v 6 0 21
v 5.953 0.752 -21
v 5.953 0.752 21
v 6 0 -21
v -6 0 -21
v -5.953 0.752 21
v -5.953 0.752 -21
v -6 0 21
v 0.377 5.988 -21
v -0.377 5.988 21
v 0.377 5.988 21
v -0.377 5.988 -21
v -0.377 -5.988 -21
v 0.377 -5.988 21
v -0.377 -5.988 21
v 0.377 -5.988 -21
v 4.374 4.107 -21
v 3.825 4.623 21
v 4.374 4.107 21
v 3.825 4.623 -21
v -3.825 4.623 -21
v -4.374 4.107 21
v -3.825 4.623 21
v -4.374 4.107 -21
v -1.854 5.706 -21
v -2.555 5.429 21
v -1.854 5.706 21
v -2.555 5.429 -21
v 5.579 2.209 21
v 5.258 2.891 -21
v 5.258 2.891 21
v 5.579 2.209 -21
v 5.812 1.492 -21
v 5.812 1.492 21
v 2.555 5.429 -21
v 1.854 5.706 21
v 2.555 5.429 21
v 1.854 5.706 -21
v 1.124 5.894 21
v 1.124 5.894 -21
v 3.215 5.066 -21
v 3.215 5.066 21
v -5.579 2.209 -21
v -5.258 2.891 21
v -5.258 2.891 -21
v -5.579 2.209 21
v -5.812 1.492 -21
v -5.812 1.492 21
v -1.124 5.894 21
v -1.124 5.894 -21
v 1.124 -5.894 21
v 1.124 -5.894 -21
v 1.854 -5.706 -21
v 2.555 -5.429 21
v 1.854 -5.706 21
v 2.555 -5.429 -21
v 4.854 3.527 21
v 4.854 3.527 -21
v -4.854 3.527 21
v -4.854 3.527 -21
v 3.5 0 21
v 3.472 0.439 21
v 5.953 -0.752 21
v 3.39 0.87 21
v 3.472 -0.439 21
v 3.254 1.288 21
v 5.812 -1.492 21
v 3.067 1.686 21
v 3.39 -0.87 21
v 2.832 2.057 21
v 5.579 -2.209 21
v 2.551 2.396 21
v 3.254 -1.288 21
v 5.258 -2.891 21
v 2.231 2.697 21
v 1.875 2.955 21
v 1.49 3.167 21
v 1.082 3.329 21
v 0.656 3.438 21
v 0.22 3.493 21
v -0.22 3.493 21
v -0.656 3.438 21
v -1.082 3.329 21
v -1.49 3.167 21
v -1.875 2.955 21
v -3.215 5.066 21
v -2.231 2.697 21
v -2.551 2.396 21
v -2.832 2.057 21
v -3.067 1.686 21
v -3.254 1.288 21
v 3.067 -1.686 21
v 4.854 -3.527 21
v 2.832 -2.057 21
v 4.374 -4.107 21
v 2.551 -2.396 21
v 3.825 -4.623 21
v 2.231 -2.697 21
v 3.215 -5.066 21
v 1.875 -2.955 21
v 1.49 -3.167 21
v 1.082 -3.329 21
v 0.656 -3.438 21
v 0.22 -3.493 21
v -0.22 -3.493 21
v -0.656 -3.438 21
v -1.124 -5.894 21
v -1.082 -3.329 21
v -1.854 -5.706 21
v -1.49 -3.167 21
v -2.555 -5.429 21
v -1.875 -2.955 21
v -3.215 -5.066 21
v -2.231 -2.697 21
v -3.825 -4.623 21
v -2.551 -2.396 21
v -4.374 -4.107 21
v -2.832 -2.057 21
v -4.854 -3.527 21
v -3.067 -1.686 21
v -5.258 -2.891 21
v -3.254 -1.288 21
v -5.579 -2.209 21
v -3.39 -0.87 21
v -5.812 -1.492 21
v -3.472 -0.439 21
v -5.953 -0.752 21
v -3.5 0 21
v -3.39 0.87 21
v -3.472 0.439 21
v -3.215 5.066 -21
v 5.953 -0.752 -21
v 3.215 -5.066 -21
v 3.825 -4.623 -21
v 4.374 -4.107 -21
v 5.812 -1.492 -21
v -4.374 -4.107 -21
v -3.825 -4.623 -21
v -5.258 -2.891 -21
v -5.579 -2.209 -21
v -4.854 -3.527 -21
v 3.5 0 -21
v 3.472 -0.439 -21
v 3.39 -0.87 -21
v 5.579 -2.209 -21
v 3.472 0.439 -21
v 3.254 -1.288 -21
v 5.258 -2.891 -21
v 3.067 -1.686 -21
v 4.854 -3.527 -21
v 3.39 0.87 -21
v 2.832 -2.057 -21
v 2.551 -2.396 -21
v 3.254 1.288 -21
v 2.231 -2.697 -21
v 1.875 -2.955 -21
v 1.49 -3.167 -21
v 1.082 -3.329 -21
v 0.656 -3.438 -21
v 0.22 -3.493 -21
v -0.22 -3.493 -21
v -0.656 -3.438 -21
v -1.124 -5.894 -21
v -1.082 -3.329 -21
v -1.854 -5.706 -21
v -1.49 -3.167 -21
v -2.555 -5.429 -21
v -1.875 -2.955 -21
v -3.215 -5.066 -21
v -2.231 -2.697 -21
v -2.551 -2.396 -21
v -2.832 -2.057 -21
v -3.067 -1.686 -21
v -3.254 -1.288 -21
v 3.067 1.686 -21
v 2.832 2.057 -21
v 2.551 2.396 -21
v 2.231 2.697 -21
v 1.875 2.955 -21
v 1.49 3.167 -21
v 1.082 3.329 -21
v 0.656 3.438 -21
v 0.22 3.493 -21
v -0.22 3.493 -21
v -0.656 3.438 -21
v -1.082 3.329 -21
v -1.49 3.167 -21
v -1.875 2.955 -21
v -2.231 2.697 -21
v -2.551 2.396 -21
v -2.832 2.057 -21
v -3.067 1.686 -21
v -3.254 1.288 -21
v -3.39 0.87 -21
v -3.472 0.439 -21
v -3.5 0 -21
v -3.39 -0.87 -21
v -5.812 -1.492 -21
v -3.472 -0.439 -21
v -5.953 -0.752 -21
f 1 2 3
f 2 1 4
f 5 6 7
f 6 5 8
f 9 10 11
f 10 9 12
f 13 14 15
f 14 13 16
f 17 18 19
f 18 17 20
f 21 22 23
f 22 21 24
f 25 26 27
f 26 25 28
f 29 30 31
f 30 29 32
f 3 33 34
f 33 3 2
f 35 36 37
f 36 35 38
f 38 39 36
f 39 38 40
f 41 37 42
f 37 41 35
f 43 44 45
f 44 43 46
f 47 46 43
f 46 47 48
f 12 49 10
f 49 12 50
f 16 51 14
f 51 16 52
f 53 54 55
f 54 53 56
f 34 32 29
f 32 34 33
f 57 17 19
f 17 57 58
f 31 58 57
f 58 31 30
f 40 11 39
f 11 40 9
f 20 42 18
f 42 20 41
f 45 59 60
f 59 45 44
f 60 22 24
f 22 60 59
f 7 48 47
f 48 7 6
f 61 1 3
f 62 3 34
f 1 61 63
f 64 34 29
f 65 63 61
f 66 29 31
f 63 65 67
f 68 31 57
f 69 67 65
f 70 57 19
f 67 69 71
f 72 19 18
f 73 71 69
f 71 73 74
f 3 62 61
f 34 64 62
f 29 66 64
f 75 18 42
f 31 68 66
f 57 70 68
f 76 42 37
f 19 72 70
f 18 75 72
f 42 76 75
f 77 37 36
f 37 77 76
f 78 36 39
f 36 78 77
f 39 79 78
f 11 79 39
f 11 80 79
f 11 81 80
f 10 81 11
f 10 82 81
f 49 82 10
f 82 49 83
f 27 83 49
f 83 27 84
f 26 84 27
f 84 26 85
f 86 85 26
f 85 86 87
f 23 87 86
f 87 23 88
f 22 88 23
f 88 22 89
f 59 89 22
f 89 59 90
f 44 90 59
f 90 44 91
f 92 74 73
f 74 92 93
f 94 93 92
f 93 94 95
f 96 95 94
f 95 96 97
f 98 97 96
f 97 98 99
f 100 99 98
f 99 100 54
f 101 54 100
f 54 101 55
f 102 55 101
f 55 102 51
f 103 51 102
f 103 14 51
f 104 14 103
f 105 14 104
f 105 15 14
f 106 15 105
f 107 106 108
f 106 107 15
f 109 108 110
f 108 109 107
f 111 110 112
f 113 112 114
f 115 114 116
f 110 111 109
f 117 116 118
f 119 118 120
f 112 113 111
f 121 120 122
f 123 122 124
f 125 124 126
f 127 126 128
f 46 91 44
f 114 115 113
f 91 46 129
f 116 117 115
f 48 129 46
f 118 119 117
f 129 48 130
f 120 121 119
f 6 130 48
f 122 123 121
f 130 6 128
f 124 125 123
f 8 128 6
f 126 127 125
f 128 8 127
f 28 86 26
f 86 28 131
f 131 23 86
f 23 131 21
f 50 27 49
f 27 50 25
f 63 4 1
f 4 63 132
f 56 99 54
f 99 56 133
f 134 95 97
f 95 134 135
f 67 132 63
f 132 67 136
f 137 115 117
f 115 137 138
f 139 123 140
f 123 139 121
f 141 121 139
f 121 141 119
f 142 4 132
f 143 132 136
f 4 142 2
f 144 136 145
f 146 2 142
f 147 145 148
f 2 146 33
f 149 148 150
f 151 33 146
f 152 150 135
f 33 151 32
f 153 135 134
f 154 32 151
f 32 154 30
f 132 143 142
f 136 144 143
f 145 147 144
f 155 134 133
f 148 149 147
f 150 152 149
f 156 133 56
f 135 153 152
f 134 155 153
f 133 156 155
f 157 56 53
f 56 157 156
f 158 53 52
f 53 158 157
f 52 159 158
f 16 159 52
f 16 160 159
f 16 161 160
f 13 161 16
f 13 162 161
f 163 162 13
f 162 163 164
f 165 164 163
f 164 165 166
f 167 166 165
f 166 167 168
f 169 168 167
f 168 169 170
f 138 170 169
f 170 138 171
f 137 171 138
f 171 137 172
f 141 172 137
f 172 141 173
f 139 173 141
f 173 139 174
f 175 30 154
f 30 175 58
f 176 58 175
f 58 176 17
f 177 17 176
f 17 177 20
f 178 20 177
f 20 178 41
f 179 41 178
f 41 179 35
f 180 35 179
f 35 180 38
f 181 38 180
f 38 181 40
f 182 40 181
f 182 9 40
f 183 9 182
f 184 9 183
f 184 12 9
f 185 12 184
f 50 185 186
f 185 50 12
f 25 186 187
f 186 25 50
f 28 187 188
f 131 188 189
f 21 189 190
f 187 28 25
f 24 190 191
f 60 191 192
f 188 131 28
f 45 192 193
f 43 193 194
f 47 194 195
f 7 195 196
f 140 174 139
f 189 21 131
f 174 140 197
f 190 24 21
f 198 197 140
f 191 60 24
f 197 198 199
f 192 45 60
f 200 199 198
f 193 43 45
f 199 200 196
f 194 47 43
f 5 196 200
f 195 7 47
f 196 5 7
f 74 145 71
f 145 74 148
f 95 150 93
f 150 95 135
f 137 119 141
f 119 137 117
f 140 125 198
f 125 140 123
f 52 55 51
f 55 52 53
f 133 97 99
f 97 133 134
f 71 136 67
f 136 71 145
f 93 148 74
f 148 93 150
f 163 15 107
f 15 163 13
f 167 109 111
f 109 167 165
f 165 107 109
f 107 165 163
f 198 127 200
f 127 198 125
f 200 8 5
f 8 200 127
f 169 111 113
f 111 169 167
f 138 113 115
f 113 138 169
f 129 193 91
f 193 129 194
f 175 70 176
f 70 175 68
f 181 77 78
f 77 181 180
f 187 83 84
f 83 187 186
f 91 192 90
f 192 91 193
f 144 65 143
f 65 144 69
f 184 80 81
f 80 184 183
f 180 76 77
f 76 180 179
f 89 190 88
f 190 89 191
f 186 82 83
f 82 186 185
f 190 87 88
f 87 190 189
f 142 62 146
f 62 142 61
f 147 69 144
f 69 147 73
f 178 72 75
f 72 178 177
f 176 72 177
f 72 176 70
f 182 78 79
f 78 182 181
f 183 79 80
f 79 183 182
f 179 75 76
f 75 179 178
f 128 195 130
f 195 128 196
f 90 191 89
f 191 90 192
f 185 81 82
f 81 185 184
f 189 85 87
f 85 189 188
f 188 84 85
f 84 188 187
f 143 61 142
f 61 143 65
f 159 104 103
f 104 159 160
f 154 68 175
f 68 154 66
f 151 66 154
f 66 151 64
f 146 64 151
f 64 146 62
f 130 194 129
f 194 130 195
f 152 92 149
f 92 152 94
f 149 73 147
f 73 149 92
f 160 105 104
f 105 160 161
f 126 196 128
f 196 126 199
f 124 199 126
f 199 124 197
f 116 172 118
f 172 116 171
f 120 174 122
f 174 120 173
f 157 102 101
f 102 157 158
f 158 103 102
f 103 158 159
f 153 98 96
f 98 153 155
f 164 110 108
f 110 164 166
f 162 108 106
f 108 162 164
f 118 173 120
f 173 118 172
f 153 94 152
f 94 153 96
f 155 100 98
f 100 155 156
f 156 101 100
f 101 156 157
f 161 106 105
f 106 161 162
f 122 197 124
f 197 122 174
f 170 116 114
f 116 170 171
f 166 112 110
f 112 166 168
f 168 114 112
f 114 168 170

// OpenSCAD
$fn = 50;


difference() {
	union() {
		translate(v = [0, 0, -21.0000000000]) {
			cylinder(h = 42, r = 6.0000000000);
		}
	}
	union() {
		translate(v = [0, 0, -100.0000000000]) {
			cylinder(h = 200, r = 3.5000000000);
		}
	}
}
